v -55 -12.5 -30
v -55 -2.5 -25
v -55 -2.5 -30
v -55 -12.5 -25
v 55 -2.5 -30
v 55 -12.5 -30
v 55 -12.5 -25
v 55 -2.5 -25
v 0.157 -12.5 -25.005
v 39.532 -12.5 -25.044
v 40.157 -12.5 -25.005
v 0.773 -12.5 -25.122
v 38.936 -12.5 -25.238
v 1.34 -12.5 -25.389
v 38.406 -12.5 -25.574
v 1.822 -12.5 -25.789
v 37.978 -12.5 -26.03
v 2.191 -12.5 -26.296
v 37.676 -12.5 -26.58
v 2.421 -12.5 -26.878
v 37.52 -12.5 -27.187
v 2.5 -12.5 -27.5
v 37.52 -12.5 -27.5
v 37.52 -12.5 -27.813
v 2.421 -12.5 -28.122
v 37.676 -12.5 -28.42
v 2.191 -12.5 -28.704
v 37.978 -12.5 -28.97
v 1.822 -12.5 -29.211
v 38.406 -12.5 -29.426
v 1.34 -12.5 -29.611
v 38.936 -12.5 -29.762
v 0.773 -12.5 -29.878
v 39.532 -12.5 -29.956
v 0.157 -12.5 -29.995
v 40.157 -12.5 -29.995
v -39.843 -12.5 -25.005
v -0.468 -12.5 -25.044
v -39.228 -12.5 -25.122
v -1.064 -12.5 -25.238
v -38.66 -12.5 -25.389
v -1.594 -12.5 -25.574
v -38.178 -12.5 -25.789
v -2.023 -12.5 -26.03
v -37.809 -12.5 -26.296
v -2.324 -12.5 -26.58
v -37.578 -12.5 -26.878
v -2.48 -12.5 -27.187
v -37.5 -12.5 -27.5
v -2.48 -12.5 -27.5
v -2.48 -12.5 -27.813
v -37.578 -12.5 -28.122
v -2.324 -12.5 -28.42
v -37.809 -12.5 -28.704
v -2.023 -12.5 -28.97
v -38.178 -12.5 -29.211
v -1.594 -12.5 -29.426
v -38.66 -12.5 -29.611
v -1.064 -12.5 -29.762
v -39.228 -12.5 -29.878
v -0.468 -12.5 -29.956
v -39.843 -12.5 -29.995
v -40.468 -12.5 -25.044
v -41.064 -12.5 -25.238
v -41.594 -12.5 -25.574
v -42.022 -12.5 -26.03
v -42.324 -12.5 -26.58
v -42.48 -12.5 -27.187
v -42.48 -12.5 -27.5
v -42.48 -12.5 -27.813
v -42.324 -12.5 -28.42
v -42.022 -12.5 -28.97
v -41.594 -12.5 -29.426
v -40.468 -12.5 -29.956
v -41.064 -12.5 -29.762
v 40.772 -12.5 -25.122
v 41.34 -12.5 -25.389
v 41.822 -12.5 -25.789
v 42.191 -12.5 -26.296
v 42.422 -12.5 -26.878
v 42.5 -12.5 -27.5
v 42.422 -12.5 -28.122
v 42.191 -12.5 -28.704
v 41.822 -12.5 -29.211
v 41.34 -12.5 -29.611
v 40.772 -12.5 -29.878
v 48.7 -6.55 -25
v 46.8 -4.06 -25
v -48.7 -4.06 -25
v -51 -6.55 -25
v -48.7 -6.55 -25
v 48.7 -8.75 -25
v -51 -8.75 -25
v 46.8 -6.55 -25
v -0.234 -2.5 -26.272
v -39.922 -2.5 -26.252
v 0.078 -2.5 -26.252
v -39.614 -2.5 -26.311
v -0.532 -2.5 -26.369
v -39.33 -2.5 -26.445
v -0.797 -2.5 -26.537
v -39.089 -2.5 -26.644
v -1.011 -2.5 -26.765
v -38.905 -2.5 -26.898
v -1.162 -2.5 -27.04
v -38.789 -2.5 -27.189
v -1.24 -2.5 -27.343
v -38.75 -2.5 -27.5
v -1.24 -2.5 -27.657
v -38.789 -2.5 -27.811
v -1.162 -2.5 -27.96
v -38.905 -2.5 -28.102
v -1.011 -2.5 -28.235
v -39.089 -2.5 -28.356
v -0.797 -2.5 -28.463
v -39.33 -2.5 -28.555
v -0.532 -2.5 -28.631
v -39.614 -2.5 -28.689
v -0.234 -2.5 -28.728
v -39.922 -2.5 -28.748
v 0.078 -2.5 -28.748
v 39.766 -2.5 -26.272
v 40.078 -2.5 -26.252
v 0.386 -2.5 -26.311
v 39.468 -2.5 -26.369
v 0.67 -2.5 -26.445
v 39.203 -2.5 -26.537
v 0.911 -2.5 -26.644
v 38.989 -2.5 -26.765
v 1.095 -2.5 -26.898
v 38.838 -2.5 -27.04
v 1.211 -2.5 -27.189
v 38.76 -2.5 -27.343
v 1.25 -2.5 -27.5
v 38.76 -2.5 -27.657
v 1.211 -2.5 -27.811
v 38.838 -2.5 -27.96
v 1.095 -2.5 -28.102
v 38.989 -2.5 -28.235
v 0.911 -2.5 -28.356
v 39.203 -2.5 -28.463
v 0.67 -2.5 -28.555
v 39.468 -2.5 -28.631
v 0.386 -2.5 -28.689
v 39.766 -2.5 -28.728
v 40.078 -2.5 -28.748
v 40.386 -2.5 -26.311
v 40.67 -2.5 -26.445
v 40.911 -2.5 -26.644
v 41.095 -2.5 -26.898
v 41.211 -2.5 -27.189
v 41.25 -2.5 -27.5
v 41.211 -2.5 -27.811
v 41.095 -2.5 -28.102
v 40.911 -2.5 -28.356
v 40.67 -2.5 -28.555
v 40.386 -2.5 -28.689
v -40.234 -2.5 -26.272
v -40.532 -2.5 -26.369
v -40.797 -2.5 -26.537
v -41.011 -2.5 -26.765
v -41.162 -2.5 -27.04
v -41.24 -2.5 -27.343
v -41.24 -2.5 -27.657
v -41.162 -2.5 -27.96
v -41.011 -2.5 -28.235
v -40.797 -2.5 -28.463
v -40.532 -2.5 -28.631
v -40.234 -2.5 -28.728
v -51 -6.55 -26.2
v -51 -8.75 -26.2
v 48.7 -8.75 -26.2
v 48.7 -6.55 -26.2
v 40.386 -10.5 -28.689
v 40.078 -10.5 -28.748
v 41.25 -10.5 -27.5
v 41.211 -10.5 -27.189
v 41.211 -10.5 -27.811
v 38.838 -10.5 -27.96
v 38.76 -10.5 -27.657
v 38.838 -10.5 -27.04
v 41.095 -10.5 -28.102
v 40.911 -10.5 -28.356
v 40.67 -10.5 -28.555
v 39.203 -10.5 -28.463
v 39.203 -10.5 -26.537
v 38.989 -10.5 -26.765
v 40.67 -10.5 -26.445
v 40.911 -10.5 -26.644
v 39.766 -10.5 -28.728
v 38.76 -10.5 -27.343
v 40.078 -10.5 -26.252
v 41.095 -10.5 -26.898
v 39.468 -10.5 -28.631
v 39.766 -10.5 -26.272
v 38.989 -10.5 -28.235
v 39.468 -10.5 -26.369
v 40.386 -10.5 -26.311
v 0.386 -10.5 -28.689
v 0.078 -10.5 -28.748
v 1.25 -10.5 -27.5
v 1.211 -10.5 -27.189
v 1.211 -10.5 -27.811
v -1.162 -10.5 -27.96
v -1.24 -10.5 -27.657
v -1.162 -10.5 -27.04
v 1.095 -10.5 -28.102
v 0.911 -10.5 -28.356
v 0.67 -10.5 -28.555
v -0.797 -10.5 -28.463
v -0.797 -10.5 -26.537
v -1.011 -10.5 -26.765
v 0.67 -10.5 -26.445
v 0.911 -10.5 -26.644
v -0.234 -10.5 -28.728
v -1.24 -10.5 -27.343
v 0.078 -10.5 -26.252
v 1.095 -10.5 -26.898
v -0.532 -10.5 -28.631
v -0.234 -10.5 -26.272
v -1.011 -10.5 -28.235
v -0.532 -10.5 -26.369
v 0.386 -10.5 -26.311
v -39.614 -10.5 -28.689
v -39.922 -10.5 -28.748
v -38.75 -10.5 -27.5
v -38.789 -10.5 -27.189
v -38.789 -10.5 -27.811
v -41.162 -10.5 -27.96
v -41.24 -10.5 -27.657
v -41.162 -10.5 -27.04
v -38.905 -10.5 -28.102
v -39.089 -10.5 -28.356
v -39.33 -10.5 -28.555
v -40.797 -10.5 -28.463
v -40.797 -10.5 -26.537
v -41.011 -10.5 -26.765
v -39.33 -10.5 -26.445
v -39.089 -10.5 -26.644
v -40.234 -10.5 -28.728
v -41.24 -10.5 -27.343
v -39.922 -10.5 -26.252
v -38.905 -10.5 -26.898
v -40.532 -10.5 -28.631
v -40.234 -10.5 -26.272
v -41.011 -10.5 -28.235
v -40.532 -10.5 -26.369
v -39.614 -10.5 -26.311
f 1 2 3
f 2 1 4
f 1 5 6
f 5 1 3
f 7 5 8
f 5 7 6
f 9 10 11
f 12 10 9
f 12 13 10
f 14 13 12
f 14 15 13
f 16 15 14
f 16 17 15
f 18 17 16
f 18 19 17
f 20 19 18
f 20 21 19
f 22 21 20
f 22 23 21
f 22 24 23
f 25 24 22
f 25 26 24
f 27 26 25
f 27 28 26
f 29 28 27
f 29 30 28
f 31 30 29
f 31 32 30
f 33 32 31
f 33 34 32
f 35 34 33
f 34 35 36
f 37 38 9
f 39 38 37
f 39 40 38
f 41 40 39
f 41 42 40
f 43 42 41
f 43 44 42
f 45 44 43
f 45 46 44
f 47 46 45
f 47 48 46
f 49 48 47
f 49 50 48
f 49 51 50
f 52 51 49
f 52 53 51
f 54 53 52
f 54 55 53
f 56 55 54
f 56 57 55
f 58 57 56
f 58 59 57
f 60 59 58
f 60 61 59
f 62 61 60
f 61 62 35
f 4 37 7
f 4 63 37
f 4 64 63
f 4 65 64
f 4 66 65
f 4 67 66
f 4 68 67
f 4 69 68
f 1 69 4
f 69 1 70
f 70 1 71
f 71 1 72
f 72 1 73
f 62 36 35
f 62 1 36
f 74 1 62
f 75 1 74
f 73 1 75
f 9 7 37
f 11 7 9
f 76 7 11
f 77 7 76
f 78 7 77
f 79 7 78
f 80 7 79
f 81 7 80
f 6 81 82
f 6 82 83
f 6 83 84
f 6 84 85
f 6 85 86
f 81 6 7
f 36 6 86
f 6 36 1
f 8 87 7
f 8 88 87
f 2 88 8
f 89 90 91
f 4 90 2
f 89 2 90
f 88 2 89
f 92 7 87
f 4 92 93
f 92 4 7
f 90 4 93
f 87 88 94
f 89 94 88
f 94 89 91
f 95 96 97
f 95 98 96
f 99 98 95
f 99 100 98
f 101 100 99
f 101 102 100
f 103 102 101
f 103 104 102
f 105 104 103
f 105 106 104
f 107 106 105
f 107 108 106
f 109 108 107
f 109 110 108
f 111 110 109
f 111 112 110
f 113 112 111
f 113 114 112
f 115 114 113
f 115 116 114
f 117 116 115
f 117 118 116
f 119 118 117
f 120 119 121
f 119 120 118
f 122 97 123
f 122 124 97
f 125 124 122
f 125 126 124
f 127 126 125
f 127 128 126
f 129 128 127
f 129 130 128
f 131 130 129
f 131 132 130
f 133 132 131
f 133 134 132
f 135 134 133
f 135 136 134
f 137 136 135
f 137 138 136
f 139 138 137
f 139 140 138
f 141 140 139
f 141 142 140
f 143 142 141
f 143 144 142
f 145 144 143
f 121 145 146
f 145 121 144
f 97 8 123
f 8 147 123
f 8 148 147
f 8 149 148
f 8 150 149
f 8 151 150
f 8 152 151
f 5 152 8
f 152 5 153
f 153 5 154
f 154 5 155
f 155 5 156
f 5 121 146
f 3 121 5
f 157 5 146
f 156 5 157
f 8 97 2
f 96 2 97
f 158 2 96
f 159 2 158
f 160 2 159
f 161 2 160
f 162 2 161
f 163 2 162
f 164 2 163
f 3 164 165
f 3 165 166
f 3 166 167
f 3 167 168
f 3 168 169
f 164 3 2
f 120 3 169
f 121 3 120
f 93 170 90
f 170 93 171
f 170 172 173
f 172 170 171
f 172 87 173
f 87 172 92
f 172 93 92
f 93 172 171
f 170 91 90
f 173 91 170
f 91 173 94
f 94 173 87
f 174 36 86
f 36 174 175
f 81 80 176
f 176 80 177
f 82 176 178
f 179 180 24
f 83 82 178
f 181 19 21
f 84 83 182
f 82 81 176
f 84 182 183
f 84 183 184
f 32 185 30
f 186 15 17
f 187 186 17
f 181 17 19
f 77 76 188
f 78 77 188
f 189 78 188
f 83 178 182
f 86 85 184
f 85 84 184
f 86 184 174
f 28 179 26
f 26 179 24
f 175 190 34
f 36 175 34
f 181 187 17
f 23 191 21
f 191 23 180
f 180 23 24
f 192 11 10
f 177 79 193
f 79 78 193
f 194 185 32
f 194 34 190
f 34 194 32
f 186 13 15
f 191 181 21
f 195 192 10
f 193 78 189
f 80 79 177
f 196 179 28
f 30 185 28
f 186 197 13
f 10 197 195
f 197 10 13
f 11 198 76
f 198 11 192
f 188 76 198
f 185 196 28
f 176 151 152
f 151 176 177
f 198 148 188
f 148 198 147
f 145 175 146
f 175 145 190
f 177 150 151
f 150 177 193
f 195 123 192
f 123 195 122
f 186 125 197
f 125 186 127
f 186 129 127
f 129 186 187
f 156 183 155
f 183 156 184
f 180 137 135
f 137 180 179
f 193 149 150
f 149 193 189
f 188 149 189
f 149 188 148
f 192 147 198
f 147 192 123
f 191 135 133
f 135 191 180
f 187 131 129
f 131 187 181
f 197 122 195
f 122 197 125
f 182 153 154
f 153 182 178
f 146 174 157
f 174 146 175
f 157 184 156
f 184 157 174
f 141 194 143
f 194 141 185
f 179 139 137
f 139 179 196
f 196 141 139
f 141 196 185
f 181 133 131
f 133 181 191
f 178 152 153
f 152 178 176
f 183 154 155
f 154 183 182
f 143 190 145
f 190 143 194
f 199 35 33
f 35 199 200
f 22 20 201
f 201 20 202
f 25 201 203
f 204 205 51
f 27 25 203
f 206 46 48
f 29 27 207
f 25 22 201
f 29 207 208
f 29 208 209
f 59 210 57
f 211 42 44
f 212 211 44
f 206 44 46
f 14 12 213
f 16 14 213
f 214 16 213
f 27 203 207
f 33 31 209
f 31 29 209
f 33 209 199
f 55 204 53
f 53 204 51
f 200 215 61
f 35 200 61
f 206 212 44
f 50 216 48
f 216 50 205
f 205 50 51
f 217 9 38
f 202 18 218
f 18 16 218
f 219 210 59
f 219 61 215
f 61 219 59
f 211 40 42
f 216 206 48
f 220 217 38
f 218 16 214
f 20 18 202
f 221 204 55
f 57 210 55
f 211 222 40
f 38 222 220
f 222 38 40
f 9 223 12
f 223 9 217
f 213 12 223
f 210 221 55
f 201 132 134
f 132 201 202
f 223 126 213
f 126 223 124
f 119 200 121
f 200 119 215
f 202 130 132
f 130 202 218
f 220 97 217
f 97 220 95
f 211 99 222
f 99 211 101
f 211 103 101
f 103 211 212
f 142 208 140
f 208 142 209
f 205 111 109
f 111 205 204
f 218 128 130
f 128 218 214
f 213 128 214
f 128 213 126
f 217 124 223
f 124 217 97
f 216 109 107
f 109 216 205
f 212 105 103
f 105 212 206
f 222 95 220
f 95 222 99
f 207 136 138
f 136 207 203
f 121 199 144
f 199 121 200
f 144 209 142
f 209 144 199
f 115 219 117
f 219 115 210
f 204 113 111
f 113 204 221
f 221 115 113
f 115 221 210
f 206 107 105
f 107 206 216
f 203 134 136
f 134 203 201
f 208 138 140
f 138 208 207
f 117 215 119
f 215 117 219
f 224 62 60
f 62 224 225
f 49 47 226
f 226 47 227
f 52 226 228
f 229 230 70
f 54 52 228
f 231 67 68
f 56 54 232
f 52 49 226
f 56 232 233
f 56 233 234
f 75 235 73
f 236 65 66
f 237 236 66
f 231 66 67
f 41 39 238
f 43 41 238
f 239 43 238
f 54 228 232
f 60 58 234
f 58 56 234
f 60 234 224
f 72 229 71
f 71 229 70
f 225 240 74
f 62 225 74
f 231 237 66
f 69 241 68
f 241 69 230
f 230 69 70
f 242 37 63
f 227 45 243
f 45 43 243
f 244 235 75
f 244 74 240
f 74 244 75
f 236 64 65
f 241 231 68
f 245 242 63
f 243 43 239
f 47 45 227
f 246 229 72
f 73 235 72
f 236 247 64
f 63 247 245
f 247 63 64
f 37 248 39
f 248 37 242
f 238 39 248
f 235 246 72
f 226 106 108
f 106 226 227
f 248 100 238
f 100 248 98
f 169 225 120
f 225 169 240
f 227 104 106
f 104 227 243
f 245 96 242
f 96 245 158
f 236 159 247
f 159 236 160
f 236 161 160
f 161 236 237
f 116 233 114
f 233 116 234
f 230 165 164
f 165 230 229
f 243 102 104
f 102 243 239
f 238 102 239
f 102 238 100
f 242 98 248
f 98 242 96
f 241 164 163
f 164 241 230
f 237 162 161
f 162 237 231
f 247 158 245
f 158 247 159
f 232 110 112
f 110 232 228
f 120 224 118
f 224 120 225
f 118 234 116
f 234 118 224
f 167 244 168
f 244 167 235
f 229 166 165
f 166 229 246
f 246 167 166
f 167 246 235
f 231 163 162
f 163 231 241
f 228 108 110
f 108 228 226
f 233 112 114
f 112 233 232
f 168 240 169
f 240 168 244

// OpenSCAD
// file: openscad-extra/src/countersink.scad
/*
Countersink depression for tapered screw heads.
*/

module make_countersink(d1=0, d2=0, h=0, outer=10, inner=0, $fn=25){
    /*
    d1 = shaft diameter
    d2 = head diameter
    h = height of taper
    outer = height of head mass
    inner = height of shaft mass, including taper
    */
    default_taper_height = 2;
    d1 = d1 ? d1 : 2.5;
    d2 = d2 ? d2 : 5;
    h = h ? h : default_taper_height;
    inner = (inner ? inner : 10) - default_taper_height;
    
    translate([0, 0, -default_taper_height/2])
    union(){
        
        // taper
        cylinder(d1=d1, d2=d2, h=h, center=true, $fn=$fn);
    
        // big top
    	translate([0, 0, h/2])
    	cylinder(d=d2, h=outer, center=false, $fn=$fn);
        
    	// lower bottom
    	translate([0, 0, -h/2-inner])
    	cylinder(d=d1, h=inner, center=false, $fn=$fn);
	}
}

make_countersink(inner=10);

color("blue")
translate([0,2,0])
cylinder(d=2.5, h=20, center=true, $fn=100);
// file: arduino_mega_mount.scad
use <openscad-extra/src/countersink.scad>;

// mega needs 3mm of clearance below it
module arduino_mega_mount(){
    difference(){
        for(i=[-1:2:1])
        translate([0,7.5,(25+2.5)*i])
        cube([110,10,5], center=true);
        
        translate([-1.15,7.65,-.75])
        color("orange")
        arduino_mega_board(buffer=0.5);

        color("red"){
            // top mount holes
            for(i=[0:2])
            translate([40-40*i,12.5,30-2.5])
            rotate([-90,0,0])
            make_countersink(d1=2.5, d2=5, inner=20);
            
            // bottom mount holes
            for(i=[0:2])
            translate([40-40*i,5,-(30-2.5)])
            rotate([-90,0,0])
            make_countersink(d1=2.5, d2=5, inner=20);
        }
    }
    
}

module arduino_mega_board(buffer=0){
    // main board
    color("green")
    cube([99.2+buffer,1.7+buffer,53.4+buffer], center=true);
    
    // electronics bounding box
    color("red")
    translate([0,6,0])
    cube([99.2-3+2+buffer,1.7+10.5+buffer,53.4-3+0.5+buffer], center=true);
    
    // bottom elec bb
    color("red")
    translate([2-1.8,-2.86+1/2+0.02,0])
    cube([95+buffer,2+buffer,50.5+0.5+buffer], center=true);
}

//mega_offset_y = -4; // flush
//mega_offset_y = -4+3; // minimum clearance
mega_offset_y = -4+4; // minimum clearance + extra for screw

if(0){
color("gray")
translate([-109.5,mega_offset_y,100])
rotate([-90,0,0])
import("electronics/arduino-mega-2560/Arduino_MEGA2560.stl");

translate([-109.5+99.2/2,-1.7/2+mega_offset_y,100-53.4/2])
arduino_mega_board(buffer=0.5);
}

if(0)
color("blue")
translate([-58.75, -66-5+55+5+2.5, 4.5+70])
//pelvis_cross_support();
rotate([90,0,0])
import("printable/pelvis_cross_support.stl");

translate([-58.75, -66-5+55+5+2.5, 4.5+70])
arduino_mega_mount();
// main file
use <arduino_mega_mount.scad>;

rotate([180,0,0])
difference(){
arduino_mega_mount();

translate([0,0,-100/2])
cube([150,100,100], center=true);
}
